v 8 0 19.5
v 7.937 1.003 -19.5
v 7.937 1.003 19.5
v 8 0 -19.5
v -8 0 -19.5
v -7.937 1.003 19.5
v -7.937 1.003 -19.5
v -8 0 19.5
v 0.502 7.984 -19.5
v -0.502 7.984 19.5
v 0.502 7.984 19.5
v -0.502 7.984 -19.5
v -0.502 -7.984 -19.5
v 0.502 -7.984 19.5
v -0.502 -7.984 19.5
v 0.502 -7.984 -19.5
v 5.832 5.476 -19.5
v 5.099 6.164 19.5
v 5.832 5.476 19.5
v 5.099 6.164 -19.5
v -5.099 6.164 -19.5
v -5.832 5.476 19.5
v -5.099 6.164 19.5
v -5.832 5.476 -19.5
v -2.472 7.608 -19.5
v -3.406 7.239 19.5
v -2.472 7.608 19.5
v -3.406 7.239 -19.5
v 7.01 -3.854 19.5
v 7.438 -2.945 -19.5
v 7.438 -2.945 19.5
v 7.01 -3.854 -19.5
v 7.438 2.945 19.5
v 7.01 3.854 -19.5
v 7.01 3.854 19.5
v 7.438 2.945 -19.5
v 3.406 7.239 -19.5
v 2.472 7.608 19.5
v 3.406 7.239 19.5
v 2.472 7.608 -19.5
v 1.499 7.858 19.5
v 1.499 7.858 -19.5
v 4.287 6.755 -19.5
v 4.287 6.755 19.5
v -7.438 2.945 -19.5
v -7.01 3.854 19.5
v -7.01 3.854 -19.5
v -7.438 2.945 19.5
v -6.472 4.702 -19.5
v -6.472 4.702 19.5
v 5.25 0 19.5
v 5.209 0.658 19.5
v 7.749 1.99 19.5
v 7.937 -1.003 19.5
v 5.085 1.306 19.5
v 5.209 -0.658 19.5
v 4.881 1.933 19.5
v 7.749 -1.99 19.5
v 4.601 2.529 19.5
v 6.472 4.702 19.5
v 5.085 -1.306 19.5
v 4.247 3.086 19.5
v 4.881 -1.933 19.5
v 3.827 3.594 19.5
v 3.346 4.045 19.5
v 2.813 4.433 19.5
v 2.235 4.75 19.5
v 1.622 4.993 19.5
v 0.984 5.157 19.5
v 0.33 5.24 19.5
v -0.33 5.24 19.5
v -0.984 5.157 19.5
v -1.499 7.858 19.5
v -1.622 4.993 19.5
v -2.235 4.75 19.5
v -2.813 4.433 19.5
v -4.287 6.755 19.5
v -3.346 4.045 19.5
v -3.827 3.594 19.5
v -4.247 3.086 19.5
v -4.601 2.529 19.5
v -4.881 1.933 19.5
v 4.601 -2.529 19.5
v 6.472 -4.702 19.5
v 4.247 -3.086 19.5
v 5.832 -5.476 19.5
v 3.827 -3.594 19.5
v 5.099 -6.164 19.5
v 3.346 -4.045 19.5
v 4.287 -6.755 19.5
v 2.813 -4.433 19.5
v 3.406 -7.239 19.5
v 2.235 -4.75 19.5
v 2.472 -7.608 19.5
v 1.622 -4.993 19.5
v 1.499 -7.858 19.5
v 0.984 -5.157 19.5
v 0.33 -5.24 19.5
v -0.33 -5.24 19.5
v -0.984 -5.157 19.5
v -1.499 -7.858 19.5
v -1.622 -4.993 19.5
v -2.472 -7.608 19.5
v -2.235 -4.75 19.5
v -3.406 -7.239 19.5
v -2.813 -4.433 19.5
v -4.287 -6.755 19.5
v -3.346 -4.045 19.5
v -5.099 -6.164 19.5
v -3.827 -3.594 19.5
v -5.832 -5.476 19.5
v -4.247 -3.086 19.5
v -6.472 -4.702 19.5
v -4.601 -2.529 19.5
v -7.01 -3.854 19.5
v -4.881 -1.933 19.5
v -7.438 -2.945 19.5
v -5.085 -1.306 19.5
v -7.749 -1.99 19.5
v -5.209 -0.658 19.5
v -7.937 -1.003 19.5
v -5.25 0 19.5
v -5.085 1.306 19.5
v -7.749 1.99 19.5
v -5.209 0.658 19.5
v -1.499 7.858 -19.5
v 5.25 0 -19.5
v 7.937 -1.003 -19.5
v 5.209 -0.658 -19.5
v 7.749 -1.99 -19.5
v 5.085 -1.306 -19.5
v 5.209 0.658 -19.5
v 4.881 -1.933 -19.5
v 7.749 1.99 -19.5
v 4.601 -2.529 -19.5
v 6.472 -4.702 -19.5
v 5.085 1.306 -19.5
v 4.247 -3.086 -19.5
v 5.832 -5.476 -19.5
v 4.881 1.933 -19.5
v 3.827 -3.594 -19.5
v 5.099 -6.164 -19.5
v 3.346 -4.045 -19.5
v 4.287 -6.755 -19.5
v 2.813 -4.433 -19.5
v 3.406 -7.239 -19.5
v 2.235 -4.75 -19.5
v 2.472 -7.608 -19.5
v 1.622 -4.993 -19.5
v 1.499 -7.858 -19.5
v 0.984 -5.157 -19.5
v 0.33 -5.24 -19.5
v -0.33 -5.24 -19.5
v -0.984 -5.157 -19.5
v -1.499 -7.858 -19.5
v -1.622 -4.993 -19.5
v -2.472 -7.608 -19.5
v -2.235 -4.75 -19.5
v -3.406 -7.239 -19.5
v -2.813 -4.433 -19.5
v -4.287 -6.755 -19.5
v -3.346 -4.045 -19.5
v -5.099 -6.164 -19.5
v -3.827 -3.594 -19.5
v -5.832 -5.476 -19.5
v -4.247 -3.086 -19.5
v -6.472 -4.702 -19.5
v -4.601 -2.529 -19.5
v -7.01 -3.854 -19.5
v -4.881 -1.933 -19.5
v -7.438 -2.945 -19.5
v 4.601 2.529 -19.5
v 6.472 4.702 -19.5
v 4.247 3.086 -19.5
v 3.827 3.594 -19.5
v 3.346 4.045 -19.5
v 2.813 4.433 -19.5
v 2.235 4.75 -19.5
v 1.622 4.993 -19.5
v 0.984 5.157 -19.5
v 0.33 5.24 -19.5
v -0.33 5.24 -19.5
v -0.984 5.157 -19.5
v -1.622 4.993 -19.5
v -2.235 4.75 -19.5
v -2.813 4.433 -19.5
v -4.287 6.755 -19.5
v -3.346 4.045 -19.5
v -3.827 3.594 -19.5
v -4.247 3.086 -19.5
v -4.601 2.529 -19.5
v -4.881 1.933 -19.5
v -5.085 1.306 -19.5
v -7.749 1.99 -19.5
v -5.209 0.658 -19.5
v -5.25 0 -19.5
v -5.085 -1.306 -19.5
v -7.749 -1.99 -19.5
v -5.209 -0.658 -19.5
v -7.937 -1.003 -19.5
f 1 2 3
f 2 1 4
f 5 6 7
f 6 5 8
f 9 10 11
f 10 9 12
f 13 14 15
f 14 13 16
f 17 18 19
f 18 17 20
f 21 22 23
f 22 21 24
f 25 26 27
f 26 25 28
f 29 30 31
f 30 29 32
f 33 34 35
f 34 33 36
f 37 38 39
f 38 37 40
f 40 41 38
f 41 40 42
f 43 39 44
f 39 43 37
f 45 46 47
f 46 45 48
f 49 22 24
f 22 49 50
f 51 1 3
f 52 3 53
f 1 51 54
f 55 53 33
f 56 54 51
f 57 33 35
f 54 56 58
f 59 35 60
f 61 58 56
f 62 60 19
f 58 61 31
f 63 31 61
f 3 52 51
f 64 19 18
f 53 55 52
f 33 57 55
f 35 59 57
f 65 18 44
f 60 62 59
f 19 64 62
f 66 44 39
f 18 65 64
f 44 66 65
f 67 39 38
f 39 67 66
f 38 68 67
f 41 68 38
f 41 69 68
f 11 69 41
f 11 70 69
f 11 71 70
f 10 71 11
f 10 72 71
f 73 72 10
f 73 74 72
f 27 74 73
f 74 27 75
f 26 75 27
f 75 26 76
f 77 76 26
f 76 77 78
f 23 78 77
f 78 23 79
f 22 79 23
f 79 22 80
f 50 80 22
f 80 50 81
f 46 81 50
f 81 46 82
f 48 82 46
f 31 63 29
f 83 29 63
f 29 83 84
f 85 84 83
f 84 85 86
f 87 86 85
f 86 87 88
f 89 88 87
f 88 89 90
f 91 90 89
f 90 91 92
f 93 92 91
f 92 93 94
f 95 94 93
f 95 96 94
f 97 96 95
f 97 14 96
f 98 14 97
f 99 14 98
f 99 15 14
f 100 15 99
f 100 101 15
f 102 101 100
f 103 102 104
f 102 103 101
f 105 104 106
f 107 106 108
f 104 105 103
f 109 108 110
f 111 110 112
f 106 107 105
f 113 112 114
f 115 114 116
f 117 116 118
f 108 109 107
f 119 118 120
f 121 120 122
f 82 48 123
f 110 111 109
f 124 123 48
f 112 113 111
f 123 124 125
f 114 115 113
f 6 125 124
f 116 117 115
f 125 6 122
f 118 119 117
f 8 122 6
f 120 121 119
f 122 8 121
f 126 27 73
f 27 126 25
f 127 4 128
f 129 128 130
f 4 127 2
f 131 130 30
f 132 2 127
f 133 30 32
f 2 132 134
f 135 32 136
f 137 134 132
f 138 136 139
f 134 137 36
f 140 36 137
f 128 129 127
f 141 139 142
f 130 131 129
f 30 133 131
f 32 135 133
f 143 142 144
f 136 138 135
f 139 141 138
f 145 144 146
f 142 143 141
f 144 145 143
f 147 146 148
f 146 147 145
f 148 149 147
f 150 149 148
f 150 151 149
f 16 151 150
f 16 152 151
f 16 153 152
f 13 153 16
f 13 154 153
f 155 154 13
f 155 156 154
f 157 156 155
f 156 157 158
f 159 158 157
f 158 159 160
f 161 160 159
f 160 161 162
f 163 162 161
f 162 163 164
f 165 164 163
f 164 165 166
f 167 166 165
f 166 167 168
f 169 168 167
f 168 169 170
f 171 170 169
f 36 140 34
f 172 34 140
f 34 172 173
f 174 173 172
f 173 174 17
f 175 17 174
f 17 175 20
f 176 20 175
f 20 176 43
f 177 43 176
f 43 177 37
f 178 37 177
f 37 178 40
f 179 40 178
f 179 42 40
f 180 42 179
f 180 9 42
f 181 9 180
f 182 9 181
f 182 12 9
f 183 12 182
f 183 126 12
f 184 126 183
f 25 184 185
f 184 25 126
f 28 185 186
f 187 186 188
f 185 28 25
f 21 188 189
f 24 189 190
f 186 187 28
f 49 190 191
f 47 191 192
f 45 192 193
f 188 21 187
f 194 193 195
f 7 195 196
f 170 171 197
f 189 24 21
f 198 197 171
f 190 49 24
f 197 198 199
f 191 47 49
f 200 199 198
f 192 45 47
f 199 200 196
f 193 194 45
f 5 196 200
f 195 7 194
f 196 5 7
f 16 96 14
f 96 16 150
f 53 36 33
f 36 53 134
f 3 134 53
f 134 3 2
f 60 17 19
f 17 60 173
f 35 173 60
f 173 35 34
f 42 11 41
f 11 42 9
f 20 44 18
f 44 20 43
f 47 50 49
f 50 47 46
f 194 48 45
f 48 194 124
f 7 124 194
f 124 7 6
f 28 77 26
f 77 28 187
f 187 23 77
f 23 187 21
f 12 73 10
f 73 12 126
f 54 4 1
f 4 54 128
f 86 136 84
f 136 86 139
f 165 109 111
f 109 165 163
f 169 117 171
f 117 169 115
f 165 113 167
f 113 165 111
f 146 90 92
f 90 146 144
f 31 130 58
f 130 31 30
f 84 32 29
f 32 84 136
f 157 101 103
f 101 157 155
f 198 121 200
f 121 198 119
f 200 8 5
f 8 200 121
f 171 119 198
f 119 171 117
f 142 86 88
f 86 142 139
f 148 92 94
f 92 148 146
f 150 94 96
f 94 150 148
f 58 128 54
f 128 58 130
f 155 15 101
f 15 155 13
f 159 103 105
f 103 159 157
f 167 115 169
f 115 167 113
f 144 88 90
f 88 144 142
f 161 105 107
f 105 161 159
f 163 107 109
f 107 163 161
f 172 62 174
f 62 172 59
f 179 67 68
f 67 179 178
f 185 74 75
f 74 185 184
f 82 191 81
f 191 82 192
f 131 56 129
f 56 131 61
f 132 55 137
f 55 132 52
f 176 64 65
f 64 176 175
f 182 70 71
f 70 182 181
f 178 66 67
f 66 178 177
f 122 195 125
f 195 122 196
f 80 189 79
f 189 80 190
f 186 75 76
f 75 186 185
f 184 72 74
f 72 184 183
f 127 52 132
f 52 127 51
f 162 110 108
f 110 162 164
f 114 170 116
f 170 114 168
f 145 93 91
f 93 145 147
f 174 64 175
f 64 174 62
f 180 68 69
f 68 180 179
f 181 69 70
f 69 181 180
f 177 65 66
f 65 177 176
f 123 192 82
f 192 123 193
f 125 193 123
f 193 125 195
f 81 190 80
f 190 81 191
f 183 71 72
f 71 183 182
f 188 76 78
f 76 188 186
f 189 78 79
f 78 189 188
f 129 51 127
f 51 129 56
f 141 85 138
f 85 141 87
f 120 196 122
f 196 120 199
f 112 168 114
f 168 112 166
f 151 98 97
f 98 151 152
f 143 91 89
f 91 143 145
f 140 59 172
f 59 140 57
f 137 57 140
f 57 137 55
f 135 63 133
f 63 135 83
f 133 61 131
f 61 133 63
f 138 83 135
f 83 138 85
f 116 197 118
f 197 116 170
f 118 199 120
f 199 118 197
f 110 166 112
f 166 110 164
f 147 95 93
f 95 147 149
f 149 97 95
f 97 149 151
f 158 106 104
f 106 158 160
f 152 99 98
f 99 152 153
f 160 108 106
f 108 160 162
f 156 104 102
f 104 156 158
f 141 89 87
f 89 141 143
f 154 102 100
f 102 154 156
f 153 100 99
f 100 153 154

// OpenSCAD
$fn = 50;


difference() {
	union() {
		translate(v = [0, 0, -19.5000000000]) {
			cylinder(h = 39, r = 8.0000000000);
		}
	}
	union() {
		translate(v = [0, 0, -100.0000000000]) {
			cylinder(h = 200, r = 5.2500000000);
		}
	}
}
